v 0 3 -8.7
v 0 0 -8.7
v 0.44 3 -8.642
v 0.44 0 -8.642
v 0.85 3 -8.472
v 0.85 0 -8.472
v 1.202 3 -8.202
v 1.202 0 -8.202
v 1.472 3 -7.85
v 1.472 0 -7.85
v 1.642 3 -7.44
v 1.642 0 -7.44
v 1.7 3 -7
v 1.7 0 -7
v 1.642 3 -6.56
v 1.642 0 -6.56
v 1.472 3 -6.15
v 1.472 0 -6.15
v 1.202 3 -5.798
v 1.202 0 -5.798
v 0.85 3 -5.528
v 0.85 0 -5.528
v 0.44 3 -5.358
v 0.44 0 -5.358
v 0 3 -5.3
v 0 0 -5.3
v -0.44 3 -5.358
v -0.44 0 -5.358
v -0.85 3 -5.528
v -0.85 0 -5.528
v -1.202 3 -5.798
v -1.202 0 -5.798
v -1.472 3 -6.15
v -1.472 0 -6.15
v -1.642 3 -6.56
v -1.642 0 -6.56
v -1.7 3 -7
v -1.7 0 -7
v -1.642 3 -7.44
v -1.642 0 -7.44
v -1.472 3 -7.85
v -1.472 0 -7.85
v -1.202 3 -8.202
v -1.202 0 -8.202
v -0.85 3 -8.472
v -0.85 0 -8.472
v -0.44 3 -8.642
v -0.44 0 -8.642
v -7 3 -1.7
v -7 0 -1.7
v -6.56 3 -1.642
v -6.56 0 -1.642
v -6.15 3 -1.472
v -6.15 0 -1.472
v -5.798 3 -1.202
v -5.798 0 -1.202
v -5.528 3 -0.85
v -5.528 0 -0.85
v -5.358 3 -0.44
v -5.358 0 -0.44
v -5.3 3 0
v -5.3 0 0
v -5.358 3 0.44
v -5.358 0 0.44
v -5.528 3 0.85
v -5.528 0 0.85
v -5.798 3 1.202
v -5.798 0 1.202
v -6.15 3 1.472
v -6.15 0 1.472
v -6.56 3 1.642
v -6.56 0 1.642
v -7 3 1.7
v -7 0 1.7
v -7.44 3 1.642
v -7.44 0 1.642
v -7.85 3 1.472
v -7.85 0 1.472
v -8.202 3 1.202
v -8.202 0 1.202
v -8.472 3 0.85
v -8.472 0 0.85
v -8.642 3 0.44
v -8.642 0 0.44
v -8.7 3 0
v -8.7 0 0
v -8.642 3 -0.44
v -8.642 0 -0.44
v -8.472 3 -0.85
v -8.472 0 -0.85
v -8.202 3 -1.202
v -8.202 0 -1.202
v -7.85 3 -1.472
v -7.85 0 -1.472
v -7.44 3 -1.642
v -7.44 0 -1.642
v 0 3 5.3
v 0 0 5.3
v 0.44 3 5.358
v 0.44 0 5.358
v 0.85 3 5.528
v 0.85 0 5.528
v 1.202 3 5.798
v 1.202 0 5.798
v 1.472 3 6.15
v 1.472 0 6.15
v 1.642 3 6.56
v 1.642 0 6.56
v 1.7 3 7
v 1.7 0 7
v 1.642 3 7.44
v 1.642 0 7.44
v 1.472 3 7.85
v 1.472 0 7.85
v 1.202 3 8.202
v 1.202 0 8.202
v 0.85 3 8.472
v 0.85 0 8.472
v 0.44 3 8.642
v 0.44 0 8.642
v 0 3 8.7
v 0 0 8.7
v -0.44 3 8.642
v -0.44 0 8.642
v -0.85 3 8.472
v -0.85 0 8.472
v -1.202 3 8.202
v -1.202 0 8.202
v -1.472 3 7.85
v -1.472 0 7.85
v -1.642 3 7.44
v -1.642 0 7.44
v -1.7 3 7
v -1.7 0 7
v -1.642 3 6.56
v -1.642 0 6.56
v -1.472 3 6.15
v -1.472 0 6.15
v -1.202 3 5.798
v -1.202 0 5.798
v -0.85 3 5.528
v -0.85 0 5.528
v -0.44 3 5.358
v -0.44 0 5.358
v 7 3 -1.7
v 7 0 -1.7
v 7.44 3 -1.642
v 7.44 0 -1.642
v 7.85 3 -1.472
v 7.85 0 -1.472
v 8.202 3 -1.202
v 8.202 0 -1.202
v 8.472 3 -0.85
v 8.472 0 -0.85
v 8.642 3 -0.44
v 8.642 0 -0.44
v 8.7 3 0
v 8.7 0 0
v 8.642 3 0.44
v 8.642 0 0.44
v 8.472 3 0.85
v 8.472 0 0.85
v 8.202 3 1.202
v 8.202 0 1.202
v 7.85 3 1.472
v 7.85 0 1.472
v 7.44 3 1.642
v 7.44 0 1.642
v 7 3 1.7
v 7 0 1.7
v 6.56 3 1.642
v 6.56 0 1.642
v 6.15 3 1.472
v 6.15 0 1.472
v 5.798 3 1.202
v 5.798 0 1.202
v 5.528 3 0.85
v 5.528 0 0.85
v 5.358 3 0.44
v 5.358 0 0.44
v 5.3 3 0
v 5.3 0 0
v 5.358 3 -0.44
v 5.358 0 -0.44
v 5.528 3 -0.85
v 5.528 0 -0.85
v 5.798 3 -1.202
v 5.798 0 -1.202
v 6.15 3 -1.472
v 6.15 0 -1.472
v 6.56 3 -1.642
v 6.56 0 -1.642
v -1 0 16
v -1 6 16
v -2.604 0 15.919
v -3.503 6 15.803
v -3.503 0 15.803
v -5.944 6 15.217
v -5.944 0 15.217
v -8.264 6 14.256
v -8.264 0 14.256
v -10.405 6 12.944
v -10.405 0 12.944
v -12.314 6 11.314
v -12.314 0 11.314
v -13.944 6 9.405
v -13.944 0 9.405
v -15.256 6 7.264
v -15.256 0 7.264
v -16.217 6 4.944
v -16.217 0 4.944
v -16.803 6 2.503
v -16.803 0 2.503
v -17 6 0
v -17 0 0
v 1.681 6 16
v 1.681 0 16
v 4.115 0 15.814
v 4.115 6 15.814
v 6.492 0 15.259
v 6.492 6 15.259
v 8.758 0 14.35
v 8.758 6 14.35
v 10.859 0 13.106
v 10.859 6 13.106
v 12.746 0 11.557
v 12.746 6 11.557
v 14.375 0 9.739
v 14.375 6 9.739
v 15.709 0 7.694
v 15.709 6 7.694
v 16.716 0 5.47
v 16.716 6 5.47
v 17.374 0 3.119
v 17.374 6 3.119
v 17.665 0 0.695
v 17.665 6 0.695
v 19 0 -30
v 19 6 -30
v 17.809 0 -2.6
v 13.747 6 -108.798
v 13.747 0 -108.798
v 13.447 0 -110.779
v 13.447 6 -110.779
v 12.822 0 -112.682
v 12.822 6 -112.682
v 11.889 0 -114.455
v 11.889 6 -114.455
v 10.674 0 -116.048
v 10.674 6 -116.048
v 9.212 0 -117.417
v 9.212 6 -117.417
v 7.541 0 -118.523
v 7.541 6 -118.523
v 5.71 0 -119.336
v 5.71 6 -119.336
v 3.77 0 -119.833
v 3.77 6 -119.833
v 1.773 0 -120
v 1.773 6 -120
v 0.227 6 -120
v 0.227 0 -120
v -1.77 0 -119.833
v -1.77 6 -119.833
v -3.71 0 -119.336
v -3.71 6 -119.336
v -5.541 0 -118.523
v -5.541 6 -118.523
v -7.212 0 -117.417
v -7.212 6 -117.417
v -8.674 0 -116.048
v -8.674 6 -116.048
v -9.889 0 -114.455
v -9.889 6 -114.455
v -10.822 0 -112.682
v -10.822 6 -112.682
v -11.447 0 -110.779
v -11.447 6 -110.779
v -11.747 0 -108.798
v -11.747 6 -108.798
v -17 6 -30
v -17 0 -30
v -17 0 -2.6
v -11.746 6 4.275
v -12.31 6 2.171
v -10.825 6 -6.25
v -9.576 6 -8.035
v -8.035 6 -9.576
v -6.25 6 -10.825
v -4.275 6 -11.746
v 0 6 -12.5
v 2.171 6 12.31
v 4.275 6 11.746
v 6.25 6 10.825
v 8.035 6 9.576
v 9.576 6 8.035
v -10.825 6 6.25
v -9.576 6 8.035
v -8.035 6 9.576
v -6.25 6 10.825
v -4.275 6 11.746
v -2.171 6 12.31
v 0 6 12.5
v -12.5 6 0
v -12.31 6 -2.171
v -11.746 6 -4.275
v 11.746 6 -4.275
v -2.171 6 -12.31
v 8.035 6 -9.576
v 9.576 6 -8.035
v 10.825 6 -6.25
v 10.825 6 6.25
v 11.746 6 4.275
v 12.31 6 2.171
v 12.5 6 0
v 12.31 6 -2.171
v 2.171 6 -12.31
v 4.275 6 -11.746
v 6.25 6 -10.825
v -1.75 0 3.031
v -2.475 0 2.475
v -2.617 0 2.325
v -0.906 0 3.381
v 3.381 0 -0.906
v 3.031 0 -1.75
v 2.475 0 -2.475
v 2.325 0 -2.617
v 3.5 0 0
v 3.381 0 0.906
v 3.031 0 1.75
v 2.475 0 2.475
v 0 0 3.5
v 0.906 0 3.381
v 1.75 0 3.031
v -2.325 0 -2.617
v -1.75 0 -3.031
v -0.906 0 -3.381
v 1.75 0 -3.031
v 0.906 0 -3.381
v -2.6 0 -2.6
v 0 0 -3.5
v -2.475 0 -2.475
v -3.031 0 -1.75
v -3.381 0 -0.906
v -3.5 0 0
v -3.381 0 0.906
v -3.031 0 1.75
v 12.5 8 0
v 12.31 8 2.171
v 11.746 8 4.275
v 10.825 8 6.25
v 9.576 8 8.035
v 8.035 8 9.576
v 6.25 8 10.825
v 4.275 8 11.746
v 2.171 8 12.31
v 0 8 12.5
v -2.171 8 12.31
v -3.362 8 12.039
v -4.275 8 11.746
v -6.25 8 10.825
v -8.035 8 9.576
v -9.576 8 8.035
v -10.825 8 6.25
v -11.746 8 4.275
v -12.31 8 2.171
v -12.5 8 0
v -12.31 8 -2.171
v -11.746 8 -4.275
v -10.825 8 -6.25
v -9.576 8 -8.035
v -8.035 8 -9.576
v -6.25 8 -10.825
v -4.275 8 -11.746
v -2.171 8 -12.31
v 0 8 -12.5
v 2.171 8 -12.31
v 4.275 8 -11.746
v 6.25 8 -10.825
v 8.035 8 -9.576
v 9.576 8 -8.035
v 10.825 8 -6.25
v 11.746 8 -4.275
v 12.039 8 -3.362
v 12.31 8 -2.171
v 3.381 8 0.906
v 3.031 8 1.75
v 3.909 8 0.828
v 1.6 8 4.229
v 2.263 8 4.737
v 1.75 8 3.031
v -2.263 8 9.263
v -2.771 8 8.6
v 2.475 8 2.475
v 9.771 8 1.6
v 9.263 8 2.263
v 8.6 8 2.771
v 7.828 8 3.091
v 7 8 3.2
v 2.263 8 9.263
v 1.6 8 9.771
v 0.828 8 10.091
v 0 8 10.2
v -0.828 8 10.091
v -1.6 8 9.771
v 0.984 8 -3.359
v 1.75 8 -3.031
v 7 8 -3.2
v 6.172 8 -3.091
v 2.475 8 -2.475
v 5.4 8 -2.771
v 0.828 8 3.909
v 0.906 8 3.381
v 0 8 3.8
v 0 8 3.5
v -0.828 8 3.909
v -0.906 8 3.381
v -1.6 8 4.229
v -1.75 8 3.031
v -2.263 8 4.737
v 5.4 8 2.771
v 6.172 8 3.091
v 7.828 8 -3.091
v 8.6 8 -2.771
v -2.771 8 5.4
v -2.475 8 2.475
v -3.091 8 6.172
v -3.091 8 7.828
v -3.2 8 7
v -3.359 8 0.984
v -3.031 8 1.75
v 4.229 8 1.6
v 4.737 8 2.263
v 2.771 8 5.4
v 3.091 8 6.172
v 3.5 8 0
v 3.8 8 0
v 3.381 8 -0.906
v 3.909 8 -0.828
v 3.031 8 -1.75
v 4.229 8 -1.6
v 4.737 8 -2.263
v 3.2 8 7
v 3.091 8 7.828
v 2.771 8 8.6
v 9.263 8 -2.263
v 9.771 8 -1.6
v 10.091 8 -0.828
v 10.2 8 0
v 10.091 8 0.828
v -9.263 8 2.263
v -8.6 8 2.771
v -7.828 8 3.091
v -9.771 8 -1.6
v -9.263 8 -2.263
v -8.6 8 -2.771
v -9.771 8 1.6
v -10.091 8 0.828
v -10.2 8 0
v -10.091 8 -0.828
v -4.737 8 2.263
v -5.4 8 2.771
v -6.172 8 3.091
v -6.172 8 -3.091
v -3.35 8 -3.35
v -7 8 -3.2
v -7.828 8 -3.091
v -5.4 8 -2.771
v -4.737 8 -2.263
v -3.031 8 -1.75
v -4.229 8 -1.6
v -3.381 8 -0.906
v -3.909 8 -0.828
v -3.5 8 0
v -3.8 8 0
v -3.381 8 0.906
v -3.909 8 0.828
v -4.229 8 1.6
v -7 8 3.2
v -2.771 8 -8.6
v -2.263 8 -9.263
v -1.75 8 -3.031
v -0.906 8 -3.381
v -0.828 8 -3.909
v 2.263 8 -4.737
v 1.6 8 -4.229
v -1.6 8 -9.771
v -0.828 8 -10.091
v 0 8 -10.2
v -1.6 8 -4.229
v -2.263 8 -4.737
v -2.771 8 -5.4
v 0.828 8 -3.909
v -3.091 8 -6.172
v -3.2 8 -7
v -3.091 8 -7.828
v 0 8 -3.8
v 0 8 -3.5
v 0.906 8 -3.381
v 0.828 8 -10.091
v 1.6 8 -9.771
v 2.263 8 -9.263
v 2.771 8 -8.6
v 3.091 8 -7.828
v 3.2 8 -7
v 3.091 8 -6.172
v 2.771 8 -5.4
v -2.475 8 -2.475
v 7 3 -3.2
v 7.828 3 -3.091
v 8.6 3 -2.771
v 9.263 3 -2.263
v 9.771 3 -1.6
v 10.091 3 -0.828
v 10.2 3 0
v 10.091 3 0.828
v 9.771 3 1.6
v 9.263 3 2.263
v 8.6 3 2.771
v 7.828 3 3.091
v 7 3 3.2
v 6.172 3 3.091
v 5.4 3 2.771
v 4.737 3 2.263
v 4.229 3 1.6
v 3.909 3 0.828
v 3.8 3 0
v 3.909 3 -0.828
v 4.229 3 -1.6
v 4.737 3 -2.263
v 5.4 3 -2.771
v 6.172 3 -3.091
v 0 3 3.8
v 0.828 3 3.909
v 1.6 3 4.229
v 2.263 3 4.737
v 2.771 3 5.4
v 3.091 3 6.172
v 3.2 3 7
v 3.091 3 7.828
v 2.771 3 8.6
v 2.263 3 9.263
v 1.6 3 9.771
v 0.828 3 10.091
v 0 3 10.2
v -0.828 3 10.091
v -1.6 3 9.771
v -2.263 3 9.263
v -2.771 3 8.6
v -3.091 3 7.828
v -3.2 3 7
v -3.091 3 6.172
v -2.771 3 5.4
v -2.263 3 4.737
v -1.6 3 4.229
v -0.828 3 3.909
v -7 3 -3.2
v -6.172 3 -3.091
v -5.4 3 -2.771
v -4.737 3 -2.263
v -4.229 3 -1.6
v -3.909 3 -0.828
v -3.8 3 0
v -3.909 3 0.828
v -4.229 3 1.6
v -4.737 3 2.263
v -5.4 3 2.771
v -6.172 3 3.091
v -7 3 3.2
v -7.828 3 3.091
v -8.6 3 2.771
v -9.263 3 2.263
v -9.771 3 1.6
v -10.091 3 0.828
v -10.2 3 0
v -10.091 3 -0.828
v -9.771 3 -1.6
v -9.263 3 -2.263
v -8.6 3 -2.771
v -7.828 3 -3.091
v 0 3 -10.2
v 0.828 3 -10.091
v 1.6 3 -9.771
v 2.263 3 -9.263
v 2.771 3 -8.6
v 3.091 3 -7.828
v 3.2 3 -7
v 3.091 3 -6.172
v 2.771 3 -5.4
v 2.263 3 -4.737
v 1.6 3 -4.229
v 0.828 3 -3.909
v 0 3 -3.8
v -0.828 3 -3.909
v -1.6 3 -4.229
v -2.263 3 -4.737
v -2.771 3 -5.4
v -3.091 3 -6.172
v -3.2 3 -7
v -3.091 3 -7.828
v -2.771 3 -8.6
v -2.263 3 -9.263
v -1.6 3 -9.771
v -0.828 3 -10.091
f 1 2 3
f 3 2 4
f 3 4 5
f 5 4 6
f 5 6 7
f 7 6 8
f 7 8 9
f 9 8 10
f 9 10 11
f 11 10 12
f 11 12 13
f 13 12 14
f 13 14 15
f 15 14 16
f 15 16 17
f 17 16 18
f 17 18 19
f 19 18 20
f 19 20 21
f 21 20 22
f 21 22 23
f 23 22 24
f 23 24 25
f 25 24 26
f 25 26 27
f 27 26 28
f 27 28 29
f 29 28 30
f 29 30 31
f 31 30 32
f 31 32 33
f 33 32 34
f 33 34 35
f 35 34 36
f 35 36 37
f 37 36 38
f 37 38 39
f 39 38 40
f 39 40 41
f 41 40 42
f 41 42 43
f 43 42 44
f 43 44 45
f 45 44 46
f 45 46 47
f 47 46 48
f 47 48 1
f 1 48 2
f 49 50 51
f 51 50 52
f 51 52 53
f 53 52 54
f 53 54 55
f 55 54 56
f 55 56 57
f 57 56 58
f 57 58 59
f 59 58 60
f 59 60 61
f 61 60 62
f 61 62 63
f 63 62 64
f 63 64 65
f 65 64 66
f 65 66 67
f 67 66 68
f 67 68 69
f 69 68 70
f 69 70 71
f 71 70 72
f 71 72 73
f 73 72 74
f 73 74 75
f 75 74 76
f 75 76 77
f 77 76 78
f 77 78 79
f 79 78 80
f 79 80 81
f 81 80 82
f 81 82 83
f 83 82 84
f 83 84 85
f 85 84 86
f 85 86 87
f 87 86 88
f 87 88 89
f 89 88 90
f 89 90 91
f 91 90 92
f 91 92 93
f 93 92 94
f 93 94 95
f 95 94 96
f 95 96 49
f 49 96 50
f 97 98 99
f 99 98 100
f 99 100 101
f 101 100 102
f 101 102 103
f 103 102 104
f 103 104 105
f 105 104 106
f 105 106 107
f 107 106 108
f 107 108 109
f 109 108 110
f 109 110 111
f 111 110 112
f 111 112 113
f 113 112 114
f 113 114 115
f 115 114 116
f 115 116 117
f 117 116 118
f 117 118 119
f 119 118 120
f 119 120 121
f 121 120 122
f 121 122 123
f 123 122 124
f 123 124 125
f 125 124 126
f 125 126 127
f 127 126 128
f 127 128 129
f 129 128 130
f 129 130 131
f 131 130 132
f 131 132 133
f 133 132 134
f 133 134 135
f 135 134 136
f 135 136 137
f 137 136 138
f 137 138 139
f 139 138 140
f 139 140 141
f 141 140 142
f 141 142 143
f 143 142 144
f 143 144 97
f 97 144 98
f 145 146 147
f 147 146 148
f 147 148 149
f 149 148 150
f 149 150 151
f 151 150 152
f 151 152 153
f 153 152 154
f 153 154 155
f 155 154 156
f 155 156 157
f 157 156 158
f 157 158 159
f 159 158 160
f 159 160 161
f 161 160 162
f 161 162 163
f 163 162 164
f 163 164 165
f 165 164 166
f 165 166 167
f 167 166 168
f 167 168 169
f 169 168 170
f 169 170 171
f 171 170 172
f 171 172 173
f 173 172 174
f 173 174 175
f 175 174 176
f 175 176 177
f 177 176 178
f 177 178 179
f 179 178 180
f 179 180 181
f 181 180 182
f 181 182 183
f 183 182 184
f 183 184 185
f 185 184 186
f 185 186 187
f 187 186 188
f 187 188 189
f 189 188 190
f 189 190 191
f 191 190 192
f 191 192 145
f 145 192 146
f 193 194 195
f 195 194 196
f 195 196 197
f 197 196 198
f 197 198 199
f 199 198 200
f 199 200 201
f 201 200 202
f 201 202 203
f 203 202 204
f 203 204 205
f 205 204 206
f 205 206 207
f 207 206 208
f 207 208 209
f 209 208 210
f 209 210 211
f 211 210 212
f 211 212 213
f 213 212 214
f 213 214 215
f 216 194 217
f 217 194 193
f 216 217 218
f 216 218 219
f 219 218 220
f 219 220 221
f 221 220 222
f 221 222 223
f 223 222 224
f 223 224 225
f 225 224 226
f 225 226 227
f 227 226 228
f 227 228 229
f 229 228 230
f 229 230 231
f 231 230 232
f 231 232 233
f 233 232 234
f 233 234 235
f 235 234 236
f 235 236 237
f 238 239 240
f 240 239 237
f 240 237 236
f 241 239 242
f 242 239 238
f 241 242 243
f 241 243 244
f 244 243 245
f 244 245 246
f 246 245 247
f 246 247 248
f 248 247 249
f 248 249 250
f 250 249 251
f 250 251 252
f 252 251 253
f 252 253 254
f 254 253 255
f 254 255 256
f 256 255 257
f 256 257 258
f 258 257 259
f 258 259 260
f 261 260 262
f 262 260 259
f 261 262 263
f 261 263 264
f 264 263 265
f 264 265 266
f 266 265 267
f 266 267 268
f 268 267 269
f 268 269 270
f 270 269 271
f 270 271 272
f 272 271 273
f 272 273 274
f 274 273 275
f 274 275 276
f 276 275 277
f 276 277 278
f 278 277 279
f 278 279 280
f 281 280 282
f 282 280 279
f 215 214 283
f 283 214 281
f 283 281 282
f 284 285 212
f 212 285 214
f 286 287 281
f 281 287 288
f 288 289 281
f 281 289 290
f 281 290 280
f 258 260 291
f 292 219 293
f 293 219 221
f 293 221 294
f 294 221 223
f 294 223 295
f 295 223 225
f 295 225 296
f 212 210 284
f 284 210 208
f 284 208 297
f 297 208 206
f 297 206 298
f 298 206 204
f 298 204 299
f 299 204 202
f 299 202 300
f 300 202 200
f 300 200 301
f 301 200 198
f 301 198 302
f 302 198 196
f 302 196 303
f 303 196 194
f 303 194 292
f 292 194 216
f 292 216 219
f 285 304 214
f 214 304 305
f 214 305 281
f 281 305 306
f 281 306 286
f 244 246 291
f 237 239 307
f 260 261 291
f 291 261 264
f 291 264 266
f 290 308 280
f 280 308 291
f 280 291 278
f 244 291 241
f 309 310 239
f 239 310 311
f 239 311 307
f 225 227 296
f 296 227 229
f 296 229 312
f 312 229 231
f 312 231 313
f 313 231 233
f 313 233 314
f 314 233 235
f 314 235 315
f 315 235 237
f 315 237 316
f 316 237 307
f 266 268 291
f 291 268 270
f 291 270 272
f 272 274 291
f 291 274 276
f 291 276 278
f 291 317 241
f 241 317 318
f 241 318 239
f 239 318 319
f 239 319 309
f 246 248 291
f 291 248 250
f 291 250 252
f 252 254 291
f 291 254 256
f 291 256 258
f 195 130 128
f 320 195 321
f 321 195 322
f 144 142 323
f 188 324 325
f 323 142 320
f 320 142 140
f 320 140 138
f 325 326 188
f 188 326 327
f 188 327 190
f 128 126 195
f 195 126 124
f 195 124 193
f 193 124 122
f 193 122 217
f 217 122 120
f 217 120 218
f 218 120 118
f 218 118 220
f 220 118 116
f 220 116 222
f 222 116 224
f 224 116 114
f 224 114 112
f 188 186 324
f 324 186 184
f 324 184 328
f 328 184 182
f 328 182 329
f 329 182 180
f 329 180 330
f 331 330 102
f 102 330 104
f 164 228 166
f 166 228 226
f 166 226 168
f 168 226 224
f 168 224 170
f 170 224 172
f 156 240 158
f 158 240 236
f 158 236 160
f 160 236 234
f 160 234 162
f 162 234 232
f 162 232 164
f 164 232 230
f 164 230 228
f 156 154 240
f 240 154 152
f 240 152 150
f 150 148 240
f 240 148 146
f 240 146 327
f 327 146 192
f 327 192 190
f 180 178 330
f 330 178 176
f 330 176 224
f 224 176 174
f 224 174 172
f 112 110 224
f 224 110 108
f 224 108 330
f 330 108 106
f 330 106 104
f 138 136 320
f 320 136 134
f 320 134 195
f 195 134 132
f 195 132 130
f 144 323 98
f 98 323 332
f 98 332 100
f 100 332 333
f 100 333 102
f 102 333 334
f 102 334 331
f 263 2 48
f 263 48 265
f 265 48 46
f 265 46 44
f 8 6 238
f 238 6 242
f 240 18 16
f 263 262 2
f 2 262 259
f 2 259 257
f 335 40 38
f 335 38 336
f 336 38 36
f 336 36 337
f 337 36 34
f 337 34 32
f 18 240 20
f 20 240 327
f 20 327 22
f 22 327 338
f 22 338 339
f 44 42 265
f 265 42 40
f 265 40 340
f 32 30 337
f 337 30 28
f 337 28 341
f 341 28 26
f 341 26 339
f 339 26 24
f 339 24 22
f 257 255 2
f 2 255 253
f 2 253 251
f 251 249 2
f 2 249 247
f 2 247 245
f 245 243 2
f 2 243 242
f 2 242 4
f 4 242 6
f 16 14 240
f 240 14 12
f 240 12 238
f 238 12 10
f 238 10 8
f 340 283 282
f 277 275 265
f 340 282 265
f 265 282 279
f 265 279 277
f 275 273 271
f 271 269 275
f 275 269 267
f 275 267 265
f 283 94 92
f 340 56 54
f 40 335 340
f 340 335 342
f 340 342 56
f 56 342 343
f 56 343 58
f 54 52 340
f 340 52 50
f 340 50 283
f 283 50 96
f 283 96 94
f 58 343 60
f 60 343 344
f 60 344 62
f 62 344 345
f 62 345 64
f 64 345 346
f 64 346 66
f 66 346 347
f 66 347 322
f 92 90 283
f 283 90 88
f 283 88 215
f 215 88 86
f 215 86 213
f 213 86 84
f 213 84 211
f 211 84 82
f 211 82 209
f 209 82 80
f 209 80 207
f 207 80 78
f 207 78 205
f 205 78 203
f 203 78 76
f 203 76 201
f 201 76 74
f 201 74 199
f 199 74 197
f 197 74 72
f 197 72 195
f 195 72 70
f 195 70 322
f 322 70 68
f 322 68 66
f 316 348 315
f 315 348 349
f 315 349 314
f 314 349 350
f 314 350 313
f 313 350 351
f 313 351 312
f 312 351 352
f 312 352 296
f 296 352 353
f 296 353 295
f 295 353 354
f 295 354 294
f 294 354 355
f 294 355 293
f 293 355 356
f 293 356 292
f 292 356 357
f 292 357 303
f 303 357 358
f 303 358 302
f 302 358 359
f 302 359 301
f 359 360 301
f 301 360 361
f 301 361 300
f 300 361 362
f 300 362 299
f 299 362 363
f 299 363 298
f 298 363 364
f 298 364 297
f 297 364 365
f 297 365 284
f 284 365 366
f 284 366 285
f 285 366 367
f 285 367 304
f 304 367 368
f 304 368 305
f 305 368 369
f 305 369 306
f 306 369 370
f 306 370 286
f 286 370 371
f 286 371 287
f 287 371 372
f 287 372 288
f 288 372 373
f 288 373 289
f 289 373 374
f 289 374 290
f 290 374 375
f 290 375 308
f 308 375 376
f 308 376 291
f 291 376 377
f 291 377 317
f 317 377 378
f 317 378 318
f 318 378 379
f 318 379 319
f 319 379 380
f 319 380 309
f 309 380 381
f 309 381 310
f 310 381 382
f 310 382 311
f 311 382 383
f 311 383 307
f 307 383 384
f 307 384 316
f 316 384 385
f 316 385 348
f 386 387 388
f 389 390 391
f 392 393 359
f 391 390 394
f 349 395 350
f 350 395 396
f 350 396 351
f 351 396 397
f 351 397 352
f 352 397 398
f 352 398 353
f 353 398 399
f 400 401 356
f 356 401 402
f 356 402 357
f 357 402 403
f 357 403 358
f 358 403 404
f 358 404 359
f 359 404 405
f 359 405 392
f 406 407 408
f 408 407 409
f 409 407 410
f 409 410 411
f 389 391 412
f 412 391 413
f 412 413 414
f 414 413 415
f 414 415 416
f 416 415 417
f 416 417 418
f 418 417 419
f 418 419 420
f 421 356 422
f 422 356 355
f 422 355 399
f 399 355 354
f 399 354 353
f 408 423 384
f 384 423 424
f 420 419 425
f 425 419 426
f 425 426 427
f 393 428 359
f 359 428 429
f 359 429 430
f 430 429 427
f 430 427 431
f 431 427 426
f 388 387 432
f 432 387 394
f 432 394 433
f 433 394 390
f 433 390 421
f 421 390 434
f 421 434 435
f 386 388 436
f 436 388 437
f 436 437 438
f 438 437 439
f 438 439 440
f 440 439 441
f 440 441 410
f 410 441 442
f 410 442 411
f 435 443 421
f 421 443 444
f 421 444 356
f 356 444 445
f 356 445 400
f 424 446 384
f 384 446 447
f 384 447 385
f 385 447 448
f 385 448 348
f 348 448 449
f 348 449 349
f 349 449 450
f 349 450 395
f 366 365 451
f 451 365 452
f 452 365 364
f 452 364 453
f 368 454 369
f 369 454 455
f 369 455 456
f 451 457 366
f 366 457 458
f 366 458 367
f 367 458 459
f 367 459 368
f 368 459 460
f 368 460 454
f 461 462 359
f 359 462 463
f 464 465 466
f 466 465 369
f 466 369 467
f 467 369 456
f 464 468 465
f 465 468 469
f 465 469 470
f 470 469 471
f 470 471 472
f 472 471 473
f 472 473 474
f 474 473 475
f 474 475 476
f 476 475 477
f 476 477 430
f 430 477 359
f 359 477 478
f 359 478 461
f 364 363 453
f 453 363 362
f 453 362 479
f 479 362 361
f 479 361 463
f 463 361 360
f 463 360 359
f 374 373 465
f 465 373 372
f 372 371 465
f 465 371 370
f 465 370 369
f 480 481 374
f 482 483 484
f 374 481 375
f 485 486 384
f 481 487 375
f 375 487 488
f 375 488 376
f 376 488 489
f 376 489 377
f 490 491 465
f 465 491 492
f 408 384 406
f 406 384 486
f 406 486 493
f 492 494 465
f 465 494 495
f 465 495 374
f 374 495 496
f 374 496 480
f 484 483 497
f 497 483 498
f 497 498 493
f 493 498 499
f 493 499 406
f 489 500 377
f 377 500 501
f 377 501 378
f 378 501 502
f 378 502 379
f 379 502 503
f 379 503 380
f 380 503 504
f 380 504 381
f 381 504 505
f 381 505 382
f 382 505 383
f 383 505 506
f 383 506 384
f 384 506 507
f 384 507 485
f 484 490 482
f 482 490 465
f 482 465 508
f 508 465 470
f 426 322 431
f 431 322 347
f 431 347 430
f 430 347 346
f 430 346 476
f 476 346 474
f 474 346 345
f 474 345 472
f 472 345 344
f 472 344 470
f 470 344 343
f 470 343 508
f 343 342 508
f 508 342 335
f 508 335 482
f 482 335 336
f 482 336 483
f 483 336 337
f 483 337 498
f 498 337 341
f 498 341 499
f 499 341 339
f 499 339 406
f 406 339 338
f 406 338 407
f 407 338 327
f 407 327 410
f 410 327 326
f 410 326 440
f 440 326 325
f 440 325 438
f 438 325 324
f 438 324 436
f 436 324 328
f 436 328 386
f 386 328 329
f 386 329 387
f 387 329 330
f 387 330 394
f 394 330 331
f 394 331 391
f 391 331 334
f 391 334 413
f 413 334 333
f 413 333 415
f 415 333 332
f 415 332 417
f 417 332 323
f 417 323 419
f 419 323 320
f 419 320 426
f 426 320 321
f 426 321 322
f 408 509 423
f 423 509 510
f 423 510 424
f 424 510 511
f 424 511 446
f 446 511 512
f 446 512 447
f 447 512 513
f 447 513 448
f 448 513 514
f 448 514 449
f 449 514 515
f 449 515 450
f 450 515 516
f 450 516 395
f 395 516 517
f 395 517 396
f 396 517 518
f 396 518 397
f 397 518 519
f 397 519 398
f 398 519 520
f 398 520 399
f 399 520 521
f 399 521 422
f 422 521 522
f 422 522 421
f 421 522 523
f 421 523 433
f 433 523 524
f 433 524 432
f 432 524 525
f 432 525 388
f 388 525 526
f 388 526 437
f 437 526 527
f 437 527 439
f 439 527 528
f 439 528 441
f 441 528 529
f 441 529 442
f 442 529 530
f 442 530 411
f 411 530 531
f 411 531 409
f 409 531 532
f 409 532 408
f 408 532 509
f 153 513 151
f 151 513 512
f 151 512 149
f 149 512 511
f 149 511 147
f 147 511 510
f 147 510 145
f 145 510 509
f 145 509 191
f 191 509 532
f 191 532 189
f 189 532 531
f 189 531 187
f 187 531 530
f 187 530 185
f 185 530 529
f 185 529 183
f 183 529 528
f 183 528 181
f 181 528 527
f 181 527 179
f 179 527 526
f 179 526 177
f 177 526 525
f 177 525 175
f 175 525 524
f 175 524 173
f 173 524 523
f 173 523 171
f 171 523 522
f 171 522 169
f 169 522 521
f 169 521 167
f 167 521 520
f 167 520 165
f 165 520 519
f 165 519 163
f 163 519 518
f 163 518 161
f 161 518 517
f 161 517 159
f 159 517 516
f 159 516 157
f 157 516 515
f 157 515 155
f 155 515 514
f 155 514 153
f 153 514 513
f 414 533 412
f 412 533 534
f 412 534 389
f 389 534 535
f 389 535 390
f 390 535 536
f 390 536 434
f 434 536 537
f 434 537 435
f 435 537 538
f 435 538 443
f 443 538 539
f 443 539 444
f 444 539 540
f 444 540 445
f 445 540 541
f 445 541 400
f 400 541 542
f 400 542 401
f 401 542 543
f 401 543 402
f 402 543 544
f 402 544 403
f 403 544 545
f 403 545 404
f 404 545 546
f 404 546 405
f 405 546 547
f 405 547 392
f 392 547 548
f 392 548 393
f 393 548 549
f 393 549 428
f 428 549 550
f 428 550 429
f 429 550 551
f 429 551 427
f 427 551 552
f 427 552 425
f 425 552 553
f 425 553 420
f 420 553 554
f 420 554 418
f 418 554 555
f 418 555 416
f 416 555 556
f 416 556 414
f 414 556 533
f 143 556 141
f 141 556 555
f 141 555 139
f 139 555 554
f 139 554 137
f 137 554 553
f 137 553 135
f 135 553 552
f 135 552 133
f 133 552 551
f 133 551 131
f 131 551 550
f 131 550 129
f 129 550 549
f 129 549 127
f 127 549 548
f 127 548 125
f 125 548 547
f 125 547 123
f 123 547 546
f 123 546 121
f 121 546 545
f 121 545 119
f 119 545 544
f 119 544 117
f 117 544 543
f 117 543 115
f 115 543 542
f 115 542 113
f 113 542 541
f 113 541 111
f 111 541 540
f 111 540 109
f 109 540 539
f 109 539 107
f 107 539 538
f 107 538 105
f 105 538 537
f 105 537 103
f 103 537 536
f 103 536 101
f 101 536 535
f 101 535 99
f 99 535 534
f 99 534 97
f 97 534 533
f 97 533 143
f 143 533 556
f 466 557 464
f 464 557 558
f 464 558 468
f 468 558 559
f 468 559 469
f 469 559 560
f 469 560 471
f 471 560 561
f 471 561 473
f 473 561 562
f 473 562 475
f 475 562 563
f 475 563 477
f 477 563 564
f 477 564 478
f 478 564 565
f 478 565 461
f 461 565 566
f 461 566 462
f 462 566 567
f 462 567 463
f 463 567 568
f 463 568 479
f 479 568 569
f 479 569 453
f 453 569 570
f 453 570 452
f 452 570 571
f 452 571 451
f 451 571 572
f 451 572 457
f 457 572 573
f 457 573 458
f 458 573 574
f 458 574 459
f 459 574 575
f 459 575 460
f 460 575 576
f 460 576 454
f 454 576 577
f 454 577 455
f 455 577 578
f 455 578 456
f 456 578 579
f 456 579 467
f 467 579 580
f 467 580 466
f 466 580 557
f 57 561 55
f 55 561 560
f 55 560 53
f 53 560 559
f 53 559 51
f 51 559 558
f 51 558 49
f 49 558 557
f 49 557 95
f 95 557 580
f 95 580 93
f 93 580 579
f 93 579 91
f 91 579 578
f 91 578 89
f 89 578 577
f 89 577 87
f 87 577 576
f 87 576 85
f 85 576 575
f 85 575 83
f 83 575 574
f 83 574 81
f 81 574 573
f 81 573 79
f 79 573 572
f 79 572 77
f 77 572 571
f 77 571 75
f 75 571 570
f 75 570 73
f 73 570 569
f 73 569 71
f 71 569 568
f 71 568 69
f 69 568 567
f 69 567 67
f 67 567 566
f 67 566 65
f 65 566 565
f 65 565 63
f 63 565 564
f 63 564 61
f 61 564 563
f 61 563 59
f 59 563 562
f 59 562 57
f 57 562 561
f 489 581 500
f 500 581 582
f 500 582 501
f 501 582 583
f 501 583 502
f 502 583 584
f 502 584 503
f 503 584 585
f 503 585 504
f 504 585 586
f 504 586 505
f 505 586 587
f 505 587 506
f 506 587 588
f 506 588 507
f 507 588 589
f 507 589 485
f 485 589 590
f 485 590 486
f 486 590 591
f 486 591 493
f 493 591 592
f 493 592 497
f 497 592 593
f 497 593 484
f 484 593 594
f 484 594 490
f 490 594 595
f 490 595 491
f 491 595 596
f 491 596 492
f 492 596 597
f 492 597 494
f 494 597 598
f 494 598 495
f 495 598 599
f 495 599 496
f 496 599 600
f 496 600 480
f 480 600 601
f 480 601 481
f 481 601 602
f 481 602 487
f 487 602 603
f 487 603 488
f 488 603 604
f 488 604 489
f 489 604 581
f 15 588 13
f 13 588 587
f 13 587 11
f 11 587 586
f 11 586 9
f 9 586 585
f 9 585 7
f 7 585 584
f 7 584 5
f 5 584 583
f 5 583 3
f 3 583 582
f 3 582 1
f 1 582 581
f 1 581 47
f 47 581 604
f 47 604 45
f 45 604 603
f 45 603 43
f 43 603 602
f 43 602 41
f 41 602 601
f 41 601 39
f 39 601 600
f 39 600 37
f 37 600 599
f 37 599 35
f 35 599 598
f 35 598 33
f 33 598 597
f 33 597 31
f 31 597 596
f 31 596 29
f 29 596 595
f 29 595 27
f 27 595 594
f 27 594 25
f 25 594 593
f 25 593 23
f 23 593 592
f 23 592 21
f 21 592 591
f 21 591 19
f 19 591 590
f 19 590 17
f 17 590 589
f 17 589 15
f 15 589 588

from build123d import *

# Parameters (mm, degrees)
BOSS_1_DEPTH  = 6
S_CYL2_R      = 12.5
BOSS_2_DEPTH  = 2
S_HOLE3_R     = 3.5
HOLE_3_DEPTH  = 8.2
S_HOLE4_R     = 1.7
HOLE_4_DEPTH  = 8.2
S_HOLE5_R     = 1.7
HOLE_5_DEPTH  = 8.2
S_HOLE6_R     = 1.7
HOLE_6_DEPTH  = 8.2
S_HOLE7_R     = 1.7
HOLE_7_DEPTH  = 8.2
S_HOLE8_R     = 3.2
HOLE_8_DEPTH  = 5.1
S_HOLE9_R     = 3.2
HOLE_9_DEPTH  = 5.1
S_HOLE10_R    = 3.2
HOLE_10_DEPTH = 5.1
S_HOLE11_R    = 3.2
HOLE_11_DEPTH = 5.1


with BuildPart() as part:
    # S_prism1 → Boss_1 (new body)
    with BuildSketch(Plane(origin=(0, 0, 0), x_dir=(1, 0, 0), z_dir=(0, 1, 0))):
        with BuildLine():
            Line((-1, -16), (1.6805, -16))
            ThreePointArc((1.6805, -16), (12.745771818, -11.556826983), (17.6654, -0.695))
            Line((17.6654, -0.695), (19, 30))
            Line((19, 30), (13.7468, 108.7982))
            ThreePointArc((13.7468, 108.7982), (9.971633889, 116.762968295), (1.7734, 120))
            Line((1.7734, 120), (0.2266, 120))
            ThreePointArc((0.2266, 120), (-7.971633889, 116.762968295), (-11.7468, 108.7982))
            Line((-11.7468, 108.7982), (-17, 30))
            Line((-17, 30), (-17, 0))
            ThreePointArc((-17, 0), (-12.3137, -11.3137), (-1, -16))
        make_face()
    extrude(amount=BOSS_1_DEPTH)

    # S_cyl2 → Boss_2 (add)
    with BuildSketch(Plane(origin=(0, 6, 0), x_dir=(1, 0, 0), z_dir=(0, 1, 0))):
        with Locations(Location((0, 0, 0), (0, 0, 270))):
            Circle(S_CYL2_R)
    extrude(amount=BOSS_2_DEPTH)

    # S_hole3 → Hole_3 (cut)
    with BuildSketch(Plane(origin=(0, -0.1, 0), x_dir=(1, 0, 0), z_dir=(0, 1, 0))):
        with Locations(Location((0, 0, 0), (0, 0, 270))):
            Circle(S_HOLE3_R)
    extrude(amount=HOLE_3_DEPTH, mode=Mode.SUBTRACT)

    # S_hole4 → Hole_4 (cut)
    with BuildSketch(Plane(origin=(0, -0.1, 0), x_dir=(1, 0, 0), z_dir=(0, 1, 0))):
        with Locations(Location((7, 0, 0), (0, 0, 270))):
            Circle(S_HOLE4_R)
    extrude(amount=HOLE_4_DEPTH, mode=Mode.SUBTRACT)

    # S_hole5 → Hole_5 (cut)
    with BuildSketch(Plane(origin=(0, -0.1, 0), x_dir=(1, 0, 0), z_dir=(0, 1, 0))):
        with Locations(Location((0, -7, 0), (0, 0, 270))):
            Circle(S_HOLE5_R)
    extrude(amount=HOLE_5_DEPTH, mode=Mode.SUBTRACT)

    # S_hole6 → Hole_6 (cut)
    with BuildSketch(Plane(origin=(0, -0.1, 0), x_dir=(1, 0, 0), z_dir=(0, 1, 0))):
        with Locations(Location((-7, 0, 0), (0, 0, 270))):
            Circle(S_HOLE6_R)
    extrude(amount=HOLE_6_DEPTH, mode=Mode.SUBTRACT)

    # S_hole7 → Hole_7 (cut)
    with BuildSketch(Plane(origin=(0, -0.1, 0), x_dir=(1, 0, 0), z_dir=(0, 1, 0))):
        with Locations(Location((0, 7, 0), (0, 0, 270))):
            Circle(S_HOLE7_R)
    extrude(amount=HOLE_7_DEPTH, mode=Mode.SUBTRACT)

    # S_hole8 → Hole_8 (cut)
    with BuildSketch(Plane(origin=(0, 3, 0), x_dir=(1, 0, 0), z_dir=(0, 1, 0))):
        with Locations(Location((7, 0, 0), (0, 0, 270))):
            Circle(S_HOLE8_R)
    extrude(amount=HOLE_8_DEPTH, mode=Mode.SUBTRACT)

    # S_hole9 → Hole_9 (cut)
    with BuildSketch(Plane(origin=(0, 3, 0), x_dir=(1, 0, 0), z_dir=(0, 1, 0))):
        with Locations(Location((0, -7, 0), (0, 0, 270))):
            Circle(S_HOLE9_R)
    extrude(amount=HOLE_9_DEPTH, mode=Mode.SUBTRACT)

    # S_hole10 → Hole_10 (cut)
    with BuildSketch(Plane(origin=(0, 3, 0), x_dir=(1, 0, 0), z_dir=(0, 1, 0))):
        with Locations(Location((-7, 0, 0), (0, 0, 270))):
            Circle(S_HOLE10_R)
    extrude(amount=HOLE_10_DEPTH, mode=Mode.SUBTRACT)

    # S_hole11 → Hole_11 (cut)
    with BuildSketch(Plane(origin=(0, 3, 0), x_dir=(1, 0, 0), z_dir=(0, 1, 0))):
        with Locations(Location((0, 7, 0), (0, 0, 270))):
            Circle(S_HOLE11_R)
    extrude(amount=HOLE_11_DEPTH, mode=Mode.SUBTRACT)


solid = part.part
